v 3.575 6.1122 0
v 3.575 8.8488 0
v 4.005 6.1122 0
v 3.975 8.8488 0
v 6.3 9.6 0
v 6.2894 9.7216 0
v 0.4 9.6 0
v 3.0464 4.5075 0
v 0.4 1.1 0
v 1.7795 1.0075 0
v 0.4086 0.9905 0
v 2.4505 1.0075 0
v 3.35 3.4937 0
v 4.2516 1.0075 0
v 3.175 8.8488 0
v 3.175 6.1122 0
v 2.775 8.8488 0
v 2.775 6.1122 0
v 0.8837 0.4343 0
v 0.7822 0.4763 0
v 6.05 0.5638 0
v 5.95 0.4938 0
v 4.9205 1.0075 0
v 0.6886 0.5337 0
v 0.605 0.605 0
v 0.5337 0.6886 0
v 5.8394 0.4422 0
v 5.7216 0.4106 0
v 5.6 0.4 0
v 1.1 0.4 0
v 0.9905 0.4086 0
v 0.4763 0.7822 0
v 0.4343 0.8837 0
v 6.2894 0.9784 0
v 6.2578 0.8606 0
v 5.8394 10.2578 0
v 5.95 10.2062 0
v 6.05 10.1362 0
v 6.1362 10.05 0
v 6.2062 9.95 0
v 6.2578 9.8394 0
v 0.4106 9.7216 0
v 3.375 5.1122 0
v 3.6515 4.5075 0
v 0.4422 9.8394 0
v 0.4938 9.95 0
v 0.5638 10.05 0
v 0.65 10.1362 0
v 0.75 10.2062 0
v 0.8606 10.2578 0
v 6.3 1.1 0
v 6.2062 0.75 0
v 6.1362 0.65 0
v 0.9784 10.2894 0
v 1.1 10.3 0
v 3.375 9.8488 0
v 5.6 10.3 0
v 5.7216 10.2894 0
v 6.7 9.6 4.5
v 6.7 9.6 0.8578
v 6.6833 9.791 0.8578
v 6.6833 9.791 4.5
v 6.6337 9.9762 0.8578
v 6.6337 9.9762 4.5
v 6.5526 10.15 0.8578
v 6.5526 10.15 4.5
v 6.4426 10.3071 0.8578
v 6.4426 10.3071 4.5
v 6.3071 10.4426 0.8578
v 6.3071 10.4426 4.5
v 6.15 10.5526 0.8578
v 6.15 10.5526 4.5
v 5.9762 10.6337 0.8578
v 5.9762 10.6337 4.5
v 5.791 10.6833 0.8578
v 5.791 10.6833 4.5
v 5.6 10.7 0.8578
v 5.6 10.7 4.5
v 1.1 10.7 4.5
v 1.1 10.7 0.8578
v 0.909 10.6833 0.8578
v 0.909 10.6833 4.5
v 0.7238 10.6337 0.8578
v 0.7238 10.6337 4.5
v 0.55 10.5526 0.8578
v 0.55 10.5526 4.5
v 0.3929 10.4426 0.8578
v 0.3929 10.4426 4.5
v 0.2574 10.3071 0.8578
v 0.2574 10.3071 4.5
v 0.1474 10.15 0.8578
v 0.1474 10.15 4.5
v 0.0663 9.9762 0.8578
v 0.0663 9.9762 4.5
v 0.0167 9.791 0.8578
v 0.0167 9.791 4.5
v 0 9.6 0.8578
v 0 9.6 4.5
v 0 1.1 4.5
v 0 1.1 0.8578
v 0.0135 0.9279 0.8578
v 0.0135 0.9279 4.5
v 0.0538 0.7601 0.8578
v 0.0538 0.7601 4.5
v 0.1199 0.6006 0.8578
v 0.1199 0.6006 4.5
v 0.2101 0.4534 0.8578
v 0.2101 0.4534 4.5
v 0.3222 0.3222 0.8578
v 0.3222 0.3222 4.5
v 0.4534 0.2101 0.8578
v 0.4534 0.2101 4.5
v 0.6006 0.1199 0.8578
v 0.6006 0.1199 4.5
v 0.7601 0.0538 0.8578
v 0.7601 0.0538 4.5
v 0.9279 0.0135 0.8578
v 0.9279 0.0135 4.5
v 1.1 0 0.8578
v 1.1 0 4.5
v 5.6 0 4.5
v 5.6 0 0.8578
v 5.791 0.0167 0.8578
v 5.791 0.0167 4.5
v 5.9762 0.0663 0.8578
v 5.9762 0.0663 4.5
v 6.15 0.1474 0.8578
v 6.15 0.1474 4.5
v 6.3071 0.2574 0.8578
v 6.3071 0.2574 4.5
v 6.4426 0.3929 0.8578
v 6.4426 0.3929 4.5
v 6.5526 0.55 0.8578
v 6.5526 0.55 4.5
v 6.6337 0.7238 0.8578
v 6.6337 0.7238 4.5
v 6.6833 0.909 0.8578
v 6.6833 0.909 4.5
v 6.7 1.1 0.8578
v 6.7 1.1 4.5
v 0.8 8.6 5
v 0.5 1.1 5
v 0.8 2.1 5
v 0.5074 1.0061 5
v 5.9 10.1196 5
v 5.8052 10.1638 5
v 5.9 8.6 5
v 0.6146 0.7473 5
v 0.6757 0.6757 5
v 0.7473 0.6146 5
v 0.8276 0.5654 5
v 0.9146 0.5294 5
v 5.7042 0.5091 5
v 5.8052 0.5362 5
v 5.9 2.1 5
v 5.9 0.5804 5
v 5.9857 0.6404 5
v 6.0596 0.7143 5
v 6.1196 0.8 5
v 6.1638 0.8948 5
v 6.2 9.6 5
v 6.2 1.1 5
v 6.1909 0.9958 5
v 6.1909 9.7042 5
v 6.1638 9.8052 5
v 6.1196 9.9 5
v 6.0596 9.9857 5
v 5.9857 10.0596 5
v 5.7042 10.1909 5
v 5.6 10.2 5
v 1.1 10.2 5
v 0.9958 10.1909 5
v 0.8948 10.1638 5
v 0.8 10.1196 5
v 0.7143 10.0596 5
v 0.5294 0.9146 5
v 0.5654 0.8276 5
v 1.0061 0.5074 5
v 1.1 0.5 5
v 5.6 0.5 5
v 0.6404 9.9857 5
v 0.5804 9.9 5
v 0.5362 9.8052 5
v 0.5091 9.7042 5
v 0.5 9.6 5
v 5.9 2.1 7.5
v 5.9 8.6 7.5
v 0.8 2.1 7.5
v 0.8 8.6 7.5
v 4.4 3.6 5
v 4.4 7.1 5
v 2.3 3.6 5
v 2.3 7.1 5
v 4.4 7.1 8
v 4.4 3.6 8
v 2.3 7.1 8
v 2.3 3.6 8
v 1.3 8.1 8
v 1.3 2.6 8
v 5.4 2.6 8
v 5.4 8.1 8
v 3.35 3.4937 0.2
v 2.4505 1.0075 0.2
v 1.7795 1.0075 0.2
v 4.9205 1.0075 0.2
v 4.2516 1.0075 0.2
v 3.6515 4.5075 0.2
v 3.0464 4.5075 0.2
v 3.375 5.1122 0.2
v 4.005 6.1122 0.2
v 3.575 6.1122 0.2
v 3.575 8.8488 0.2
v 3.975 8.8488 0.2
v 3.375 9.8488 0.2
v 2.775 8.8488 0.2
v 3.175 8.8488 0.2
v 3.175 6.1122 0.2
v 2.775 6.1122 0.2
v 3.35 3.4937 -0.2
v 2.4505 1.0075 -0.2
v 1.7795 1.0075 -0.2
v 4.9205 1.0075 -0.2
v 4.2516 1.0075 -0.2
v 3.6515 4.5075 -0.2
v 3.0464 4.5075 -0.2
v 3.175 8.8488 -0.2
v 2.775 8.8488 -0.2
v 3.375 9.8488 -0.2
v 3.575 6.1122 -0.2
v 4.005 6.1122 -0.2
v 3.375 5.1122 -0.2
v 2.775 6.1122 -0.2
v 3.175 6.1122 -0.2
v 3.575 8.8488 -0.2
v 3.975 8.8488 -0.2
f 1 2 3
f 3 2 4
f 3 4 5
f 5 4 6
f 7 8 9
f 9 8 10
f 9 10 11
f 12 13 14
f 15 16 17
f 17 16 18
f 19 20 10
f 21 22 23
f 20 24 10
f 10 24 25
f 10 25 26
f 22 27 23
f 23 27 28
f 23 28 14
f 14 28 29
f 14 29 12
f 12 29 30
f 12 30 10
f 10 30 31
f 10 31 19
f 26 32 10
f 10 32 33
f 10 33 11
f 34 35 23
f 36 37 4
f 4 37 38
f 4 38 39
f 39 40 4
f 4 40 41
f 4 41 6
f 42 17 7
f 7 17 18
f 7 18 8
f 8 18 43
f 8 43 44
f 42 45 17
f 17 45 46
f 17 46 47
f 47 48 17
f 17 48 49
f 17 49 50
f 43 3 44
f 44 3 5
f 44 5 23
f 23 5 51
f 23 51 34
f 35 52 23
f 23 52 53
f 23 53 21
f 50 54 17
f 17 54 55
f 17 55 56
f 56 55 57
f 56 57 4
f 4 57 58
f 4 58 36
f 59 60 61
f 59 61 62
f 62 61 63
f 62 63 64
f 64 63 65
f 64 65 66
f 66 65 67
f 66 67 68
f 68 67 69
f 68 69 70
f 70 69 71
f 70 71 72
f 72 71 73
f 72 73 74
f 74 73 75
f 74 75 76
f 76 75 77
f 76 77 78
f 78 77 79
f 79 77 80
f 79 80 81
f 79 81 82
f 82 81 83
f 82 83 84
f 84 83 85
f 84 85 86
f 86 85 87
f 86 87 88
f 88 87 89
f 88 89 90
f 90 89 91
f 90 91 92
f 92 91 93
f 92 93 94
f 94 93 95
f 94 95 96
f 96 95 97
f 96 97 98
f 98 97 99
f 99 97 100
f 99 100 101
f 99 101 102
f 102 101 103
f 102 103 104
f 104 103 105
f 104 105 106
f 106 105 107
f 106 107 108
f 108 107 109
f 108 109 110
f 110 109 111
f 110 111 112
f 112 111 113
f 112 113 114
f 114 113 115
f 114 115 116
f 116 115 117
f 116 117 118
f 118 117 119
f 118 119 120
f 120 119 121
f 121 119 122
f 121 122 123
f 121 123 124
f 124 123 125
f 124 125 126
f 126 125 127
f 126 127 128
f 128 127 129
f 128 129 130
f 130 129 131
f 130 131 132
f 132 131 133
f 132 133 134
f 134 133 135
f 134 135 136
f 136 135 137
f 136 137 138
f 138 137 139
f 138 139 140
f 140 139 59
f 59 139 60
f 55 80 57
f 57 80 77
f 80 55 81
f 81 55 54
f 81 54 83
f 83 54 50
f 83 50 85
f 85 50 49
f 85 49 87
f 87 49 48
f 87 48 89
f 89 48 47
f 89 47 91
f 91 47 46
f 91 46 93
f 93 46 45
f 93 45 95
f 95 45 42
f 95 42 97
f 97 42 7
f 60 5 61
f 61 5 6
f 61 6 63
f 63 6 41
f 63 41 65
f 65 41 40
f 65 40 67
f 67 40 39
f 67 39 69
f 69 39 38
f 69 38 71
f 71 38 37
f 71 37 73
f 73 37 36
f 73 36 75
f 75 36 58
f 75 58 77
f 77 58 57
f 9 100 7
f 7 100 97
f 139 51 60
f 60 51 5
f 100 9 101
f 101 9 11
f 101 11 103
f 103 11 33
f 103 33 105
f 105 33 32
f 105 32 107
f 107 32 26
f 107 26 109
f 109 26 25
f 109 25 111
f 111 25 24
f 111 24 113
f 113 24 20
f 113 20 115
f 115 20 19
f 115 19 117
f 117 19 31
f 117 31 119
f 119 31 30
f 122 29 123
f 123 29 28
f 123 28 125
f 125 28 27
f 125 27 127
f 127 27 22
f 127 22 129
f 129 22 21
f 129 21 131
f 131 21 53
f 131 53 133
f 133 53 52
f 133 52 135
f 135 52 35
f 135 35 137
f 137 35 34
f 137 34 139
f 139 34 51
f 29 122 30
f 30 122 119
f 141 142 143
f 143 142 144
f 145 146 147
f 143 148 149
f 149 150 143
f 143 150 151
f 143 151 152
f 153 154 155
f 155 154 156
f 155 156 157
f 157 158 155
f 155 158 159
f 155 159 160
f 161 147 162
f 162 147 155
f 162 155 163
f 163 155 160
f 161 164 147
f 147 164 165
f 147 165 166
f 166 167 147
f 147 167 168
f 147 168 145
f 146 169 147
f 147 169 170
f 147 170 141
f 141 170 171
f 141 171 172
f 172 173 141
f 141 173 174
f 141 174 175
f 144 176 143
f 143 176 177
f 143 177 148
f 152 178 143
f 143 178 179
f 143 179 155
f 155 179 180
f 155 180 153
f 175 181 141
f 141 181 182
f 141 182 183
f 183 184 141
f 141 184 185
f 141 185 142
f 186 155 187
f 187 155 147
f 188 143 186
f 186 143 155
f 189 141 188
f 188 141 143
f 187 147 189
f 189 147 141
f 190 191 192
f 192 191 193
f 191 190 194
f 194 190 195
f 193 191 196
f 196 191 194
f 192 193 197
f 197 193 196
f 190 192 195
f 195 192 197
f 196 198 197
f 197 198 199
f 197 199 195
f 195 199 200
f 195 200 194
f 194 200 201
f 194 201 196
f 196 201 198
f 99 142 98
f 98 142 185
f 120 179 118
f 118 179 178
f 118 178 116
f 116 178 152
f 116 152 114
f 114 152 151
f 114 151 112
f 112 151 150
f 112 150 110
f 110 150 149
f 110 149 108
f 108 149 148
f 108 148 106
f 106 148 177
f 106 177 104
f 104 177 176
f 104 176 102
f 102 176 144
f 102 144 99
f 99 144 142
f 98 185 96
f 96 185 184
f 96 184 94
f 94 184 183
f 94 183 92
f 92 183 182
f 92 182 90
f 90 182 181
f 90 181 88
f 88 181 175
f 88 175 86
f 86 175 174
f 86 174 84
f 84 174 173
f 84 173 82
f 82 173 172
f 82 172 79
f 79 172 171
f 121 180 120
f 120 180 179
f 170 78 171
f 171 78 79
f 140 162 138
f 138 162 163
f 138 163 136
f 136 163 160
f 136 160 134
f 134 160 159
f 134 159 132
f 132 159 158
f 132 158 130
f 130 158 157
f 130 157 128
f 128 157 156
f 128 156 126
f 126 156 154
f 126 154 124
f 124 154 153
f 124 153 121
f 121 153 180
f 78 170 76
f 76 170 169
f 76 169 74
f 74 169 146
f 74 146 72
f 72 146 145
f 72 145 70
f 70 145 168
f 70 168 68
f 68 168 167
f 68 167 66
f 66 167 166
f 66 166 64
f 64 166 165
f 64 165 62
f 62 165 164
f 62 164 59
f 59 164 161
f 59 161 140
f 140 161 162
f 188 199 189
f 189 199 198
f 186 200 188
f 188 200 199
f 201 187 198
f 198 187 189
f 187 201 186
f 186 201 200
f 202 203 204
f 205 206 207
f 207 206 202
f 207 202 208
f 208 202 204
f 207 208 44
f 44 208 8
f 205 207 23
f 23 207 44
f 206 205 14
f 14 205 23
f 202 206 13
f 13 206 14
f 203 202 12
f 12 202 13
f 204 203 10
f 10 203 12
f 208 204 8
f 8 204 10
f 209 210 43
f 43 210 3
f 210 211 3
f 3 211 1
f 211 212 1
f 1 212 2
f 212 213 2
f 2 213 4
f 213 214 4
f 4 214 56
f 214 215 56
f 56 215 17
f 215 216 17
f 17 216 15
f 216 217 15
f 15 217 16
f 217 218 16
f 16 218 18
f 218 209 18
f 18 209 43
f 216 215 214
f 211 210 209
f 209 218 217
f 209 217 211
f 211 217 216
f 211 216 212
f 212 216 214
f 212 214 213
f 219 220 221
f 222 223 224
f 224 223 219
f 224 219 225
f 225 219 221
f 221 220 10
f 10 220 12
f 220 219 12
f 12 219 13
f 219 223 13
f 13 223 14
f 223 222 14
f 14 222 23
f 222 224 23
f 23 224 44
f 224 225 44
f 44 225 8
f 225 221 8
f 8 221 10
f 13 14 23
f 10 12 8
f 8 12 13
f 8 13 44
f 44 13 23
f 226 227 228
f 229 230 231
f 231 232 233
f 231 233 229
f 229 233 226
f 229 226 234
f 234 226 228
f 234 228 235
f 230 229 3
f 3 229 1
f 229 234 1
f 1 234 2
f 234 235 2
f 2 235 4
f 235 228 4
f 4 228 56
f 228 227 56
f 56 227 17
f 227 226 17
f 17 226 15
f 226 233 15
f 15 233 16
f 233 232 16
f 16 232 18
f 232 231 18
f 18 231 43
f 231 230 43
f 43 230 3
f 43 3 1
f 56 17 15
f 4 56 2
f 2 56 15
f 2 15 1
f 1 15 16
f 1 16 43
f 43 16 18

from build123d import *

# Parameters (mm, degrees)
BOSS_EXTRU_1_DEPTH      = 8
CHANFREIN1_SIZE         = 0.4
CHANFREIN1_SIZE2        = 0.857802768
ESQUISSE3_W             = 2.1
ESQUISSE3_H             = 3.5
ENL_V_MAT_EXTRU_4_DEPTH = 3
ESQUISSE4_OUTSIDE_W     = 11.69
ESQUISSE4_OUTSIDE_H     = 15.69
ESQUISSE4_OUTSIDE_W_2   = 5.1
ESQUISSE4_OUTSIDE_H_2   = 6.5
ENL_V_MAT_EXTRU_5_DEPTH = 3
CHANFREIN2_SIZE         = 0.5
BOSS_EXTRU_2_DEPTH      = 0.2
ENL_V_MAT_EXTRU_6_DEPTH = 0.2


with BuildPart() as part:
    # Esquisse2 → Boss.-Extru.1 (new body)
    with BuildSketch(Plane.XY):
        with BuildLine():
            Line((1.1, 0), (5.6, 0))
            ThreePointArc((5.6, 0), (6.377817459, 0.322182541), (6.7, 1.1))
            Line((6.7, 1.1), (6.7, 9.6))
            ThreePointArc((6.7, 9.6), (6.377817459, 10.377817459), (5.6, 10.7))
            Line((5.6, 10.7), (1.1, 10.7))
            ThreePointArc((1.1, 10.7), (0.322182541, 10.377817459), (0, 9.6))
            Line((0, 9.6), (0, 1.1))
            ThreePointArc((0, 1.1), (0.322182541, 0.322182541), (1.1, 0))
        make_face()
    extrude(amount=BOSS_EXTRU_1_DEPTH)

    # Chanfrein1
    chanfrein1_edges = [part.edges().sort_by_distance(p)[0] for p in [
        (3.35, 0, 0),
        (6.377817459, 0.322182541, 0),
        (0.322182541, 0.322182541, 0),
        (6.7, 5.35, 0),
        (0, 5.35, 0),
        (6.377817459, 10.377817459, 0),
        (0.322182541, 10.377817459, 0),
        (3.35, 10.7, 0),
    ]]
    chanfrein1_side = [part.faces().sort_by_distance(p)[0] for p in [
        (3.35, 5.35, 0),
    ]]
    chamfer(chanfrein1_edges, length=CHANFREIN1_SIZE, length2=CHANFREIN1_SIZE2, reference=chanfrein1_side[0])

    # Esquisse3 → Enl_v. mat.-Extru.4 (cut)
    with BuildSketch(Plane.XY.offset(8)):
        with Locations((3.35, 5.35)):
            Rectangle(ESQUISSE3_W, ESQUISSE3_H)
    extrude(amount=-ENL_V_MAT_EXTRU_4_DEPTH, mode=Mode.SUBTRACT)

    # Esquisse4 outside → Enl_v. mat.-Extru.5 (cut)
    with BuildSketch(Plane.XY.offset(8)):
        with Locations((3.35, 5.35)):
            Rectangle(ESQUISSE4_OUTSIDE_W, ESQUISSE4_OUTSIDE_H)
        with Locations((3.35, 5.35)):
            Rectangle(ESQUISSE4_OUTSIDE_W_2, ESQUISSE4_OUTSIDE_H_2, mode=Mode.SUBTRACT)
    extrude(amount=-ENL_V_MAT_EXTRU_5_DEPTH, mode=Mode.SUBTRACT)

    # Chanfrein2
    chanfrein2_edges = [part.edges().sort_by_distance(p)[0] for p in [
        (6.7, 5.35, 5),
        (6.377817459, 10.377817459, 5),
        (6.377817459, 0.322182541, 5),
        (3.35, 10.7, 5),
        (3.35, 0, 5),
        (0.322182541, 10.377817459, 5),
        (0.322182541, 0.322182541, 5),
        (0, 5.35, 5),
        (5.9, 5.35, 8),
        (3.35, 8.6, 8),
        (0.8, 5.35, 8),
        (3.35, 2.1, 8),
    ]]
    chamfer(chanfrein2_edges, length=CHANFREIN2_SIZE)

    # Esquisse5 → Boss.-Extru.2 (add)
    with BuildSketch(Plane(origin=(0, 0, 0), x_dir=(-1, 0, 0), z_dir=(0, 0, -1))):
        Polygon((-3.375, 5.112187571), (-2.775, 6.112187571), (-3.175, 6.112187571), (-3.175, 8.848759861), (-2.775, 8.848759861), (-3.375, 9.848759861), (-3.975, 8.848759861), (-3.575, 8.848759861), (-3.575, 6.112187571), (-4.005, 6.112187571), align=None)
        Polygon((-1.779487179, 1.007498111), (-2.450460737, 1.007498111), (-3.35, 3.493675996), (-4.251642628, 1.007498111), (-4.920512821, 1.007498111), (-3.651482372, 4.507498111), (-3.046414263, 4.507498111), align=None)
    extrude(amount=BOSS_EXTRU_2_DEPTH)

    # Esquisse5_2 → Enl_v. mat.-Extru.6 (cut)
    with BuildSketch(Plane(origin=(0, 0, 0), x_dir=(-1, 0, 0), z_dir=(0, 0, -1))):
        Polygon((-3.375, 5.112187571), (-2.775, 6.112187571), (-3.175, 6.112187571), (-3.175, 8.848759861), (-2.775, 8.848759861), (-3.375, 9.848759861), (-3.975, 8.848759861), (-3.575, 8.848759861), (-3.575, 6.112187571), (-4.005, 6.112187571), align=None)
        Polygon((-1.779487179, 1.007498111), (-2.450460737, 1.007498111), (-3.35, 3.493675996), (-4.251642628, 1.007498111), (-4.920512821, 1.007498111), (-3.651482372, 4.507498111), (-3.046414263, 4.507498111), align=None)
    extrude(amount=-ENL_V_MAT_EXTRU_6_DEPTH, mode=Mode.SUBTRACT)


with BuildPart() as enl_v_mat_extru_6_piece_1:
    # of the separate pieces the step leaves, piece 1, a body of its own (enl_v_mat_extru_6_pieces)
    add(part.part.solids().sort_by_distance((0, 1.1, 4.5))[0])


with BuildPart() as enl_v_mat_extru_6_piece_2:
    # of the separate pieces the step leaves, piece 2, a body of its own (enl_v_mat_extru_6_pieces)
    add(part.part.solids().sort_by_distance((1.779487179, 1.007498111, -0.2))[0])


with BuildPart() as enl_v_mat_extru_6_piece_3:
    # of the separate pieces the step leaves, piece 3, a body of its own (enl_v_mat_extru_6_pieces)
    add(part.part.solids().sort_by_distance((4.005, 6.112187571, -0.2))[0])


solid = Compound([enl_v_mat_extru_6_piece_1.part, enl_v_mat_extru_6_piece_2.part, enl_v_mat_extru_6_piece_3.part])
